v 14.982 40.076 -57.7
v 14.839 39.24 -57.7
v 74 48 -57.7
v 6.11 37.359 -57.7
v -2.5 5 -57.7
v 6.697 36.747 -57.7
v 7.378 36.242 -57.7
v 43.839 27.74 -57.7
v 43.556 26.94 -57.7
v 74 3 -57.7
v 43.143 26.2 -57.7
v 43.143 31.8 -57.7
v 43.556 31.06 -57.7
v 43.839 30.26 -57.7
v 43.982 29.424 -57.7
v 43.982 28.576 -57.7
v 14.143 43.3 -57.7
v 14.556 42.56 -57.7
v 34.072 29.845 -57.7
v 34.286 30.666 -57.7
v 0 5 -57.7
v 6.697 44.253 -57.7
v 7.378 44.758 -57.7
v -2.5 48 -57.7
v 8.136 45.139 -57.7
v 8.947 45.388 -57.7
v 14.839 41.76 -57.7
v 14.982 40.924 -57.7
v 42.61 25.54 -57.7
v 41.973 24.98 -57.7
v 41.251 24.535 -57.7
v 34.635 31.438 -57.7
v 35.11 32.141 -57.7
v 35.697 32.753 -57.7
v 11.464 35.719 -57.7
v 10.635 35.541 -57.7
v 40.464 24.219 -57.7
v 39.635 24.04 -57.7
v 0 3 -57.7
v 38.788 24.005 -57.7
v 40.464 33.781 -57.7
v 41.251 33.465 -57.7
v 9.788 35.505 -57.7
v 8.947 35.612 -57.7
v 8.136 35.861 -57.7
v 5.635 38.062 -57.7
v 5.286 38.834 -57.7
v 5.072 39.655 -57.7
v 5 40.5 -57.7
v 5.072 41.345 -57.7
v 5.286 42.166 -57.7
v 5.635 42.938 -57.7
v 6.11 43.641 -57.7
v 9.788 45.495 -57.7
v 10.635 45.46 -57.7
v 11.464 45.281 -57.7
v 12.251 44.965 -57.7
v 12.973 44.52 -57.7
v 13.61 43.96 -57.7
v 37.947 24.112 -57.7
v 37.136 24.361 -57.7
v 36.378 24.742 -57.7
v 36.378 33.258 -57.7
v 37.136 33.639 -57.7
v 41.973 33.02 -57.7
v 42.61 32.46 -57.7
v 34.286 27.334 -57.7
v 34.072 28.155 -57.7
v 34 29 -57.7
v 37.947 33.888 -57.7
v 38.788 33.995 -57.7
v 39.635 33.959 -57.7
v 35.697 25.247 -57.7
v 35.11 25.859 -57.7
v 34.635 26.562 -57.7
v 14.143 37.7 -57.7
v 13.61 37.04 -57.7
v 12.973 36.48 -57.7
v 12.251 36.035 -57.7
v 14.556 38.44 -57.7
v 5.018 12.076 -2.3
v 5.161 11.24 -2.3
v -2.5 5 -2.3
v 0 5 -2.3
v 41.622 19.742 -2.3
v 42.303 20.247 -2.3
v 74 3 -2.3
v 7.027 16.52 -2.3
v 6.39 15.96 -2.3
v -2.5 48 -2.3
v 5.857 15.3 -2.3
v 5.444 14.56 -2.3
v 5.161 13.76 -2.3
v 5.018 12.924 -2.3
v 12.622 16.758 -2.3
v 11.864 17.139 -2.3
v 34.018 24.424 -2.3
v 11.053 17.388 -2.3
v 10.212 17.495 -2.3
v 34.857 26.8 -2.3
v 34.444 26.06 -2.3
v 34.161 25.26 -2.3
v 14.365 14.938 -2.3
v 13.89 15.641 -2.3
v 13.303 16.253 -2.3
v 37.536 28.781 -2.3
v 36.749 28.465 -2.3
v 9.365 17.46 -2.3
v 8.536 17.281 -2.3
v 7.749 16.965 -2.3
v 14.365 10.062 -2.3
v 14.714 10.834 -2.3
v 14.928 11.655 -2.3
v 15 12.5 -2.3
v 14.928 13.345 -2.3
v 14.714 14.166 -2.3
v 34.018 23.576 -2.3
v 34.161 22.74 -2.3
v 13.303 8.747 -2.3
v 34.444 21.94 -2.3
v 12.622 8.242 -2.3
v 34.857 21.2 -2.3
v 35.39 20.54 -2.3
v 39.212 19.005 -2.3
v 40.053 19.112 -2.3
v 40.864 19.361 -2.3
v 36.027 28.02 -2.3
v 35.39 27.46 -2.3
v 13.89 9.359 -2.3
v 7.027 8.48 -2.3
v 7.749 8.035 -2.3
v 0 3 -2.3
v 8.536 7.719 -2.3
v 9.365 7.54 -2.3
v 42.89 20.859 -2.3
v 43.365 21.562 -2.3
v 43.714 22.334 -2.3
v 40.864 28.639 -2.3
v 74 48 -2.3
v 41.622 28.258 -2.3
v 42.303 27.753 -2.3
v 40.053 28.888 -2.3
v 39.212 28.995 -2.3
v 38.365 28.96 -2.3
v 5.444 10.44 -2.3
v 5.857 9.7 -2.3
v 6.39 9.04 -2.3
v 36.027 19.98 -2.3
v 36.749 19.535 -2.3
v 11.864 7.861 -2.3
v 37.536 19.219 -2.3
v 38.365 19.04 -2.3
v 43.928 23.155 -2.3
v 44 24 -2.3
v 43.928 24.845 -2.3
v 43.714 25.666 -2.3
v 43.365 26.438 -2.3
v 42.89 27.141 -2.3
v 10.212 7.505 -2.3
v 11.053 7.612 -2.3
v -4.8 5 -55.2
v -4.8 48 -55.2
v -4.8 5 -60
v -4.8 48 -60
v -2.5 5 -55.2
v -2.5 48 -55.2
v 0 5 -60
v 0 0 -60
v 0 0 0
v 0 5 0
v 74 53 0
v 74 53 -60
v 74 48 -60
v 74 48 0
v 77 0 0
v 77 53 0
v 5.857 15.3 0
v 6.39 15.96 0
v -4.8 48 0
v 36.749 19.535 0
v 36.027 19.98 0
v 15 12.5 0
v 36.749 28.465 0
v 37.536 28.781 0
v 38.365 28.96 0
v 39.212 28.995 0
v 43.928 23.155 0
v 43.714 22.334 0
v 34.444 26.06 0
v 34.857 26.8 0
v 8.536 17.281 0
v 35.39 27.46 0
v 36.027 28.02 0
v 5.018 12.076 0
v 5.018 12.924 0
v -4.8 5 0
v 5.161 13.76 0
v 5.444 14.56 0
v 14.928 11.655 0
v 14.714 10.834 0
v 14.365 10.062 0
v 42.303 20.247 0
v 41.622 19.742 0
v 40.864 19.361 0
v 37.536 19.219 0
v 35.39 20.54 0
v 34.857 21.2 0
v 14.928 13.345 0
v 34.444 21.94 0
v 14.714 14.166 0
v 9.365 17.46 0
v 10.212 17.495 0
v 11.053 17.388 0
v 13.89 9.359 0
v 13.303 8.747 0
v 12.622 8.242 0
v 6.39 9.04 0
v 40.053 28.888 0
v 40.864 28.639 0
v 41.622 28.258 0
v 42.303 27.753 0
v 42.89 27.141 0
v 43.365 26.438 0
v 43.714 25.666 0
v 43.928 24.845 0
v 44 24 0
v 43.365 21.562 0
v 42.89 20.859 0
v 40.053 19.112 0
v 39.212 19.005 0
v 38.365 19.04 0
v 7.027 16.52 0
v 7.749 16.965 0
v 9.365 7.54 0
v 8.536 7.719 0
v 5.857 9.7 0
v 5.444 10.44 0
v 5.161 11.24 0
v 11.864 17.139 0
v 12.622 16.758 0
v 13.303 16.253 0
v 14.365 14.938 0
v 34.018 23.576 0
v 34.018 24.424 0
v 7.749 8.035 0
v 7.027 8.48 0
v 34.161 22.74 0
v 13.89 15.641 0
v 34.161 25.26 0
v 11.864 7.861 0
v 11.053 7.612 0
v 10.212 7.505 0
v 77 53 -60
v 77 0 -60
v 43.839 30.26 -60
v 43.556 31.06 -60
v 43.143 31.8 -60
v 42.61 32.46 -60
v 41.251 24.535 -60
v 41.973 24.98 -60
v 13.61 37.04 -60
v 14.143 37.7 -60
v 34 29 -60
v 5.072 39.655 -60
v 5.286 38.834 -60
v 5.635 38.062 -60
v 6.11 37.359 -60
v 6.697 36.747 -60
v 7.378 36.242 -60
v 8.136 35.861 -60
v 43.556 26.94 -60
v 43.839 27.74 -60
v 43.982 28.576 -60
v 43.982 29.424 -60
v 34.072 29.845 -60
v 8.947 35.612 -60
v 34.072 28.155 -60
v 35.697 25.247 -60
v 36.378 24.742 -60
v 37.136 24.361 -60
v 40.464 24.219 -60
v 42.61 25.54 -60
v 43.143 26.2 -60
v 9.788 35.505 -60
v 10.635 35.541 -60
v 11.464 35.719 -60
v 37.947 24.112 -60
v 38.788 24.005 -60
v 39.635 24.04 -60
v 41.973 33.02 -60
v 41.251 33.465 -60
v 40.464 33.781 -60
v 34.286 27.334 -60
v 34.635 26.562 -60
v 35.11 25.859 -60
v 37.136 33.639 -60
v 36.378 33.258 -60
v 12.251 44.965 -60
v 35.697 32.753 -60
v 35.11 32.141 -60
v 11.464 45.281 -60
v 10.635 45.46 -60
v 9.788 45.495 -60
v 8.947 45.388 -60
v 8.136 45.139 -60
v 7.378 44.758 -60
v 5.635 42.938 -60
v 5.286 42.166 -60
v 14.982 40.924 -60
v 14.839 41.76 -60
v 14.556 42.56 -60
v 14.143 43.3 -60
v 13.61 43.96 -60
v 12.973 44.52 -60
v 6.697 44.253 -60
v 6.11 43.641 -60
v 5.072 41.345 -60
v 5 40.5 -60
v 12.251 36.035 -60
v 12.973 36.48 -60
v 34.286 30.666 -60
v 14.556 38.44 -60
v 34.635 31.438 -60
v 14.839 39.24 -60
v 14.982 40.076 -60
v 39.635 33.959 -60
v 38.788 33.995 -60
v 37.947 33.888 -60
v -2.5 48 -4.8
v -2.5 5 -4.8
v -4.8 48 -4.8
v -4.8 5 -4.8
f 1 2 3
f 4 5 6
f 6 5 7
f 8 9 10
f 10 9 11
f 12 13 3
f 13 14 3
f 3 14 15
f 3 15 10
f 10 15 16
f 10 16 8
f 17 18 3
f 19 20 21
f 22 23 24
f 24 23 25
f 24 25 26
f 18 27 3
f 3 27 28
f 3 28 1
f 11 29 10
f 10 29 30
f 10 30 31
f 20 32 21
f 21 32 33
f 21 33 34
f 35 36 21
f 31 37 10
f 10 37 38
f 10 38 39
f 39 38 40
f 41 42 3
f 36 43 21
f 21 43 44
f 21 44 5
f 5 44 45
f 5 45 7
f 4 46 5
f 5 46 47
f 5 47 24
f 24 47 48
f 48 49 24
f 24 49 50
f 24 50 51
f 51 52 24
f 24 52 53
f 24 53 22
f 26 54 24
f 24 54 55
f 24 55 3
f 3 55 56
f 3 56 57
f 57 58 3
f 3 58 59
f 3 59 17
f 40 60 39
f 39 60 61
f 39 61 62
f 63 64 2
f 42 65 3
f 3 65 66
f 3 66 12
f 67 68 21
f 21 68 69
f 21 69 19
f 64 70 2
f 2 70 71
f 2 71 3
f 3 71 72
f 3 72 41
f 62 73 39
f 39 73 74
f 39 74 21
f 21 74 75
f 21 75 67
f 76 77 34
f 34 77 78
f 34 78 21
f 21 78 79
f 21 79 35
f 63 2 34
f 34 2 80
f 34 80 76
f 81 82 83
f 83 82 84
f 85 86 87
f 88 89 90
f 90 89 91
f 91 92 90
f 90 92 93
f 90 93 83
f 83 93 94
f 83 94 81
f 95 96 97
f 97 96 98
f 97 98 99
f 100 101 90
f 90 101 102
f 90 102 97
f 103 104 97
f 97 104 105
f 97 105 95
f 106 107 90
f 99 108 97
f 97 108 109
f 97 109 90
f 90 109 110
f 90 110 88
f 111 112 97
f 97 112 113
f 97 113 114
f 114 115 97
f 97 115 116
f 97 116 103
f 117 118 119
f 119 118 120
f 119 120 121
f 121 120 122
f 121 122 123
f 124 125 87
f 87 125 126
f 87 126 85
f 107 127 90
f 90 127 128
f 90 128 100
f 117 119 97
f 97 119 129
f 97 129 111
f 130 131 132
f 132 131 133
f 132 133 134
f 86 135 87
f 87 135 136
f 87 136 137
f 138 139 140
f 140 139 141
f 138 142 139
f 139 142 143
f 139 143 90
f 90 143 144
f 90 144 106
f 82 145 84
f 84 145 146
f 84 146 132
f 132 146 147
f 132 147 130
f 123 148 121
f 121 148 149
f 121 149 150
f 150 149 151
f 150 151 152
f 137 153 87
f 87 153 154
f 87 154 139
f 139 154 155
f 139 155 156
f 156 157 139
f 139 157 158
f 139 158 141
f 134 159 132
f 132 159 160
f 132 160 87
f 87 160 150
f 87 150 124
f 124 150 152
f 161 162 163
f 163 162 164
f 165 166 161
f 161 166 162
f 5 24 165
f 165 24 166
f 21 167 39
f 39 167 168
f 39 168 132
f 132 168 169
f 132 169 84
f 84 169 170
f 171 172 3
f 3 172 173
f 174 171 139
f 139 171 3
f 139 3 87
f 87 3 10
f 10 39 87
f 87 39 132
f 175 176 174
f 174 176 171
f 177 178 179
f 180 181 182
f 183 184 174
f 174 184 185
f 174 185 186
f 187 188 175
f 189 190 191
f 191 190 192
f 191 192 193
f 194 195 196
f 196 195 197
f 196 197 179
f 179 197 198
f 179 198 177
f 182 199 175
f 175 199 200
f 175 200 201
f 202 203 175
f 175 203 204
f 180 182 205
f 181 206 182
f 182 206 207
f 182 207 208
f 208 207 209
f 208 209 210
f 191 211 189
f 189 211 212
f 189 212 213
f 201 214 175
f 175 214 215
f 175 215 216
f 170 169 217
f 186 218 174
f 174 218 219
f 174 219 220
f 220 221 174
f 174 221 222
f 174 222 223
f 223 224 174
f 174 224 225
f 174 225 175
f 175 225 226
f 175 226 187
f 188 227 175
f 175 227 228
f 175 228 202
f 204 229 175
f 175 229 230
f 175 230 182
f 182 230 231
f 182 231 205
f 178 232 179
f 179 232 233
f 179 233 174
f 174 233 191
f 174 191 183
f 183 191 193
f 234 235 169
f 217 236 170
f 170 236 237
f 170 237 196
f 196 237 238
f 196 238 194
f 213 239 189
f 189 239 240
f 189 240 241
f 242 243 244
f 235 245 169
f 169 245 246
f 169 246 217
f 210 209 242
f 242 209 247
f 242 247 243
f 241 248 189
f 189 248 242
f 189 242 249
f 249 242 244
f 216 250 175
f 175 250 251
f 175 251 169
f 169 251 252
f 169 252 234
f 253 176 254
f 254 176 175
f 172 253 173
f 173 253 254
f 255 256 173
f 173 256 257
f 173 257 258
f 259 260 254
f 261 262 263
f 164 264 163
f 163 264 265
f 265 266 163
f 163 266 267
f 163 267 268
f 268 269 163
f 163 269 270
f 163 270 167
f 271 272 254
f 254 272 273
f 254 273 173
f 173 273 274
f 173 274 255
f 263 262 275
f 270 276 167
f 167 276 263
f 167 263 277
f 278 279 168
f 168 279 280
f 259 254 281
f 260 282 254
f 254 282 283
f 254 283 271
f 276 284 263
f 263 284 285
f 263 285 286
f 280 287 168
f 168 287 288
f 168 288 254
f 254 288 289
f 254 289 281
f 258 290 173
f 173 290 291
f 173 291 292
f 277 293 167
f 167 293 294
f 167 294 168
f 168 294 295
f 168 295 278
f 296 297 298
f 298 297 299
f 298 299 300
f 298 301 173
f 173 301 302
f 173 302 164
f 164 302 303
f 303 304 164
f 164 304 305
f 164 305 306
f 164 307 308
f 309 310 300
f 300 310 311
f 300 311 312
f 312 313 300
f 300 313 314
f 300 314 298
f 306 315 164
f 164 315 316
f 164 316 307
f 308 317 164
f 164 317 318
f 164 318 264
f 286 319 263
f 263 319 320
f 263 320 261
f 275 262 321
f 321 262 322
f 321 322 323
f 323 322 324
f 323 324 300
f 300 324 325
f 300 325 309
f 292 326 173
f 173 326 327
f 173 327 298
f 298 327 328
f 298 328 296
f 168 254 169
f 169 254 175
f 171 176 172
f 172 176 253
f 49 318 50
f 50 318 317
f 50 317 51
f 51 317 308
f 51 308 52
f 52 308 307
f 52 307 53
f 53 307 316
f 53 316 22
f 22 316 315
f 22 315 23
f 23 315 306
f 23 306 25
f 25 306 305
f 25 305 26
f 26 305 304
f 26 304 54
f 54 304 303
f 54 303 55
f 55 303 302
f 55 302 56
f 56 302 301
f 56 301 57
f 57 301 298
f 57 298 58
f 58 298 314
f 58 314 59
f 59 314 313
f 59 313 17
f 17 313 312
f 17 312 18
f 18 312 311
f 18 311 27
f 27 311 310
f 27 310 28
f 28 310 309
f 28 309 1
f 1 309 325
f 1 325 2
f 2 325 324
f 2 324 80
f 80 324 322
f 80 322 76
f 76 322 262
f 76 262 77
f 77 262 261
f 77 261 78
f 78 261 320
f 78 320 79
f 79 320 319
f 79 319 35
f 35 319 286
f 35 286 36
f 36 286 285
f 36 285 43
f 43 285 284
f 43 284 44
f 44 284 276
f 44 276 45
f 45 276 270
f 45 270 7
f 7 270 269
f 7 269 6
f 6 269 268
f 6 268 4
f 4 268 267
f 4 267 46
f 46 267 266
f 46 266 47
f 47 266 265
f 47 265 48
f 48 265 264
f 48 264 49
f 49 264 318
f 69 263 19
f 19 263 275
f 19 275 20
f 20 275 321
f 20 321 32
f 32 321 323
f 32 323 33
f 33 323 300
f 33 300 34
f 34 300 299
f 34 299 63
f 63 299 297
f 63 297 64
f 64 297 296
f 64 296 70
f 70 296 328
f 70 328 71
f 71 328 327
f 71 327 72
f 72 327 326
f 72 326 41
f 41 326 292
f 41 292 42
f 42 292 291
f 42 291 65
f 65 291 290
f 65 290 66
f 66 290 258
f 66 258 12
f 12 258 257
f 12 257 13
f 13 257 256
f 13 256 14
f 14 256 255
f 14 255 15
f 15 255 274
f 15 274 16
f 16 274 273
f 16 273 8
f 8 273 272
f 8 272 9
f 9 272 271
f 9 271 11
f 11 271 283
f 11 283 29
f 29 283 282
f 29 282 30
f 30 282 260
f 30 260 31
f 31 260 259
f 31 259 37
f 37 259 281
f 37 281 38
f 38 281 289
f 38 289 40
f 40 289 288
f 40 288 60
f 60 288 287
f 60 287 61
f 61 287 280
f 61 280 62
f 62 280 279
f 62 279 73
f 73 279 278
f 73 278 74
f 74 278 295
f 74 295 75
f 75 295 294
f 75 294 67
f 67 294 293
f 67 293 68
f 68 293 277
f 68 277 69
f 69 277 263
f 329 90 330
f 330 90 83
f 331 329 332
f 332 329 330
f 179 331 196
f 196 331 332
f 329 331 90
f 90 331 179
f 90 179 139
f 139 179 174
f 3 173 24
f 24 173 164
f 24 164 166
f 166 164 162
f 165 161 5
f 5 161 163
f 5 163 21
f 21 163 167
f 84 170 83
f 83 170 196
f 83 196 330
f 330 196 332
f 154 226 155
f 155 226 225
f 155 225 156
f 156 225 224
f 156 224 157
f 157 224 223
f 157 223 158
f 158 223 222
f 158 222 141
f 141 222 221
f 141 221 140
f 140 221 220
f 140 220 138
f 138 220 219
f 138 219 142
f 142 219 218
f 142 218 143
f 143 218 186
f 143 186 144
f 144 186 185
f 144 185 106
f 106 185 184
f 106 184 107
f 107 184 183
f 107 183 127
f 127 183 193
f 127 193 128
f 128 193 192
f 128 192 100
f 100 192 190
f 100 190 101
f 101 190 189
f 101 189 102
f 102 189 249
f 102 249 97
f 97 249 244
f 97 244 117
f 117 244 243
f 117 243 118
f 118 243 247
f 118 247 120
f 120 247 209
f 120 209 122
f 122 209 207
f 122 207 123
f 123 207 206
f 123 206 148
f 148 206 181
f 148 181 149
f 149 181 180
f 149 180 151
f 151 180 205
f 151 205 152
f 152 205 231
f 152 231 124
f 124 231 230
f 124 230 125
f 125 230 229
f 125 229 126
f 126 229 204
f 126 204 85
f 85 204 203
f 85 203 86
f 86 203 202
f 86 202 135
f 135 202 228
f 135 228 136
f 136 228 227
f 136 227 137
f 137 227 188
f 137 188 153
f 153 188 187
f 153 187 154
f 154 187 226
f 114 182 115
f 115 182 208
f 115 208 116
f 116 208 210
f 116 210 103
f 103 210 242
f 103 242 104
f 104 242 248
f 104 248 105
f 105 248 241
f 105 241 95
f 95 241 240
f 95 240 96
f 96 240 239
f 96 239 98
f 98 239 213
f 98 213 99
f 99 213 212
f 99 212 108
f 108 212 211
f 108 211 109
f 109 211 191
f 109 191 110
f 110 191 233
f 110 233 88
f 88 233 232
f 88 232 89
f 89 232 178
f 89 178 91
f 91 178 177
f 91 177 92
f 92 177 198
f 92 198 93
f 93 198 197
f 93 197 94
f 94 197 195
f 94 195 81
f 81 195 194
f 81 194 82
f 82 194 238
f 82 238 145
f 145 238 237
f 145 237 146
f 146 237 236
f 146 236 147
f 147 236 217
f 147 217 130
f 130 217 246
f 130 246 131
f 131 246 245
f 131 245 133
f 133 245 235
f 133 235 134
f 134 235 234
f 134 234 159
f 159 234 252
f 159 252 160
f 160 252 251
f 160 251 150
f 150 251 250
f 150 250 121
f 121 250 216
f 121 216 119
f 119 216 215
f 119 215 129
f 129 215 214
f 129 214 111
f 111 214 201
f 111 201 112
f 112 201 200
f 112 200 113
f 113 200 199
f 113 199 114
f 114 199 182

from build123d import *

# Parameters (mm, degrees)
ESQUISSE1_W             = 77
ESQUISSE1_H             = 60
BOSS_EXTRU_1_DEPTH      = 3
BOSS_EXTRU_2_DEPTH      = 50
ESQUISSE3_W             = 55.4
ESQUISSE3_H             = 3
BOSS_EXTRU_3_DEPTH      = 74
ENL_V_MAT_EXTRU_2_REACH = 113.077
ESQUISSE5_R             = 5
BOSS_EXTRU_5_DEPTH      = 48
ENL_V_MAT_EXTRU_3_REACH = 113.077
ESQUISSE8_W             = 5
ESQUISSE8_H             = 10
ENL_V_MAT_EXTRU_4_DEPTH = 5
ESQUISSE10_R            = 5
ENL_V_MAT_EXTRU_5_DEPTH = 3
ESQUISSE11_W            = 74
ESQUISSE11_H            = 60
ENL_V_MAT_EXTRU_6_DEPTH = 5


with BuildPart() as part:
    # Esquisse1 → Boss.-Extru.1 (new body)
    with BuildSketch(Plane(origin=(0, 0, 0), x_dir=(1, 0, 0), z_dir=(0, 1, 0))):
        with Locations((38.5, 30)):
            Rectangle(ESQUISSE1_W, ESQUISSE1_H)
    extrude(amount=BOSS_EXTRU_1_DEPTH)

    # Esquisse2 → Boss.-Extru.2 (add)
    with BuildSketch(Plane(origin=(0, 3, 0), x_dir=(1, 0, 0), z_dir=(0, 1, 0))):
        Polygon((0, 60), (77, 60), (77, 0), (0, 0), (0, 2.3), (74, 2.3), (74, 57.7), (0, 57.7), align=None)
    extrude(amount=BOSS_EXTRU_2_DEPTH)

    # Esquisse3 → Boss.-Extru.3 (add)
    with BuildSketch(Plane.ZY.offset(-74)):
        with Locations((-30, 51.5)):
            Rectangle(ESQUISSE3_W, ESQUISSE3_H)
    extrude(amount=BOSS_EXTRU_3_DEPTH)

    # Esquisse5 → Enlèv. mat.-Extru.2 (cut, up to next)
    with BuildSketch(Plane(origin=(0, 0, -60), x_dir=(-1, 0, 0), z_dir=(0, 0, -1)), mode=Mode.PRIVATE) as enl_v_mat_extru_2_sk1:
        with Locations((-39, 29)):
            Circle(ESQUISSE5_R)
    enl_v_mat_extru_2_tool1 = extrude(enl_v_mat_extru_2_sk1.sketch, amount=-ENL_V_MAT_EXTRU_2_REACH, mode=Mode.PRIVATE) & part.part
    # Esquisse5 → Enlèv. mat.-Extru.2 (cut, up to next)
    with BuildSketch(Plane(origin=(0, 0, -60), x_dir=(-1, 0, 0), z_dir=(0, 0, -1)), mode=Mode.PRIVATE) as enl_v_mat_extru_2_sk2:
        with Locations((-10, 40.5)):
            Circle(ESQUISSE5_R)
    enl_v_mat_extru_2_tool2 = extrude(enl_v_mat_extru_2_sk2.sketch, amount=-ENL_V_MAT_EXTRU_2_REACH, mode=Mode.PRIVATE) & part.part
    add(enl_v_mat_extru_2_tool1.solids().sort_by_distance((39, 29, -60))[0], mode=Mode.SUBTRACT)
    add(enl_v_mat_extru_2_tool2.solids().sort_by_distance((10, 40.5, -60))[0], mode=Mode.SUBTRACT)

    # Esquisse7 → Boss.-Extru.5 (add)
    with BuildSketch(Plane.XZ):
        Polygon((0, 0), (-4.8, 0), (-4.8, -4.8), (-2.5, -4.8), (-2.5, -2.3), (0, -2.3), align=None)
        Polygon((0, -57.7), (0, -60), (-4.8, -60), (-4.8, -55.2), (-2.5, -55.2), (-2.5, -57.7), align=None)
    extrude(amount=-BOSS_EXTRU_5_DEPTH)

    # Esquisse8 → Enlèv. mat.-Extru.3 (cut, up to next)
    with BuildSketch(Plane(origin=(0, 53, 0), x_dir=(1, 0, 0), z_dir=(0, 1, 0)), mode=Mode.PRIVATE) as enl_v_mat_extru_3_sk1:
        with Locations((2.5, 30)):
            Rectangle(ESQUISSE8_W, ESQUISSE8_H)
    enl_v_mat_extru_3_tool1 = extrude(enl_v_mat_extru_3_sk1.sketch, amount=-ENL_V_MAT_EXTRU_3_REACH, mode=Mode.PRIVATE) & part.part
    add(enl_v_mat_extru_3_tool1.solids().sort_by_distance((2.5, 53, -30))[0], mode=Mode.SUBTRACT)

    # Esquisse9 → Enlèv. mat.-Extru.4 (cut)
    with BuildSketch(Plane.XZ):
        Polygon((0, -2.3), (-2.5, -2.3), (-2.5, -4.8), (-4.8, -4.8), (-4.8, 0), (0, 0), align=None)
        Polygon((0, -60), (0, -57.7), (-2.5, -57.7), (-2.5, -55.2), (-4.8, -55.2), (-4.8, -60), align=None)
    extrude(amount=-ENL_V_MAT_EXTRU_4_DEPTH, mode=Mode.SUBTRACT)

    # Esquisse10 → Enlèv. mat.-Extru.5 (cut)
    with BuildSketch(Plane.XY):
        with Locations((10, 12.5)):
            Circle(ESQUISSE10_R)
        with Locations((39, 24)):
            Circle(ESQUISSE10_R)
    extrude(amount=-ENL_V_MAT_EXTRU_5_DEPTH, mode=Mode.SUBTRACT)

    # Esquisse11 → Enlèv. mat.-Extru.6 (cut)
    with BuildSketch(Plane(origin=(0, 53, 0), x_dir=(1, 0, 0), z_dir=(0, 1, 0))):
        with Locations((37, 30)):
            Rectangle(ESQUISSE11_W, ESQUISSE11_H)
    extrude(amount=-ENL_V_MAT_EXTRU_6_DEPTH, mode=Mode.SUBTRACT)


solid = part.part
